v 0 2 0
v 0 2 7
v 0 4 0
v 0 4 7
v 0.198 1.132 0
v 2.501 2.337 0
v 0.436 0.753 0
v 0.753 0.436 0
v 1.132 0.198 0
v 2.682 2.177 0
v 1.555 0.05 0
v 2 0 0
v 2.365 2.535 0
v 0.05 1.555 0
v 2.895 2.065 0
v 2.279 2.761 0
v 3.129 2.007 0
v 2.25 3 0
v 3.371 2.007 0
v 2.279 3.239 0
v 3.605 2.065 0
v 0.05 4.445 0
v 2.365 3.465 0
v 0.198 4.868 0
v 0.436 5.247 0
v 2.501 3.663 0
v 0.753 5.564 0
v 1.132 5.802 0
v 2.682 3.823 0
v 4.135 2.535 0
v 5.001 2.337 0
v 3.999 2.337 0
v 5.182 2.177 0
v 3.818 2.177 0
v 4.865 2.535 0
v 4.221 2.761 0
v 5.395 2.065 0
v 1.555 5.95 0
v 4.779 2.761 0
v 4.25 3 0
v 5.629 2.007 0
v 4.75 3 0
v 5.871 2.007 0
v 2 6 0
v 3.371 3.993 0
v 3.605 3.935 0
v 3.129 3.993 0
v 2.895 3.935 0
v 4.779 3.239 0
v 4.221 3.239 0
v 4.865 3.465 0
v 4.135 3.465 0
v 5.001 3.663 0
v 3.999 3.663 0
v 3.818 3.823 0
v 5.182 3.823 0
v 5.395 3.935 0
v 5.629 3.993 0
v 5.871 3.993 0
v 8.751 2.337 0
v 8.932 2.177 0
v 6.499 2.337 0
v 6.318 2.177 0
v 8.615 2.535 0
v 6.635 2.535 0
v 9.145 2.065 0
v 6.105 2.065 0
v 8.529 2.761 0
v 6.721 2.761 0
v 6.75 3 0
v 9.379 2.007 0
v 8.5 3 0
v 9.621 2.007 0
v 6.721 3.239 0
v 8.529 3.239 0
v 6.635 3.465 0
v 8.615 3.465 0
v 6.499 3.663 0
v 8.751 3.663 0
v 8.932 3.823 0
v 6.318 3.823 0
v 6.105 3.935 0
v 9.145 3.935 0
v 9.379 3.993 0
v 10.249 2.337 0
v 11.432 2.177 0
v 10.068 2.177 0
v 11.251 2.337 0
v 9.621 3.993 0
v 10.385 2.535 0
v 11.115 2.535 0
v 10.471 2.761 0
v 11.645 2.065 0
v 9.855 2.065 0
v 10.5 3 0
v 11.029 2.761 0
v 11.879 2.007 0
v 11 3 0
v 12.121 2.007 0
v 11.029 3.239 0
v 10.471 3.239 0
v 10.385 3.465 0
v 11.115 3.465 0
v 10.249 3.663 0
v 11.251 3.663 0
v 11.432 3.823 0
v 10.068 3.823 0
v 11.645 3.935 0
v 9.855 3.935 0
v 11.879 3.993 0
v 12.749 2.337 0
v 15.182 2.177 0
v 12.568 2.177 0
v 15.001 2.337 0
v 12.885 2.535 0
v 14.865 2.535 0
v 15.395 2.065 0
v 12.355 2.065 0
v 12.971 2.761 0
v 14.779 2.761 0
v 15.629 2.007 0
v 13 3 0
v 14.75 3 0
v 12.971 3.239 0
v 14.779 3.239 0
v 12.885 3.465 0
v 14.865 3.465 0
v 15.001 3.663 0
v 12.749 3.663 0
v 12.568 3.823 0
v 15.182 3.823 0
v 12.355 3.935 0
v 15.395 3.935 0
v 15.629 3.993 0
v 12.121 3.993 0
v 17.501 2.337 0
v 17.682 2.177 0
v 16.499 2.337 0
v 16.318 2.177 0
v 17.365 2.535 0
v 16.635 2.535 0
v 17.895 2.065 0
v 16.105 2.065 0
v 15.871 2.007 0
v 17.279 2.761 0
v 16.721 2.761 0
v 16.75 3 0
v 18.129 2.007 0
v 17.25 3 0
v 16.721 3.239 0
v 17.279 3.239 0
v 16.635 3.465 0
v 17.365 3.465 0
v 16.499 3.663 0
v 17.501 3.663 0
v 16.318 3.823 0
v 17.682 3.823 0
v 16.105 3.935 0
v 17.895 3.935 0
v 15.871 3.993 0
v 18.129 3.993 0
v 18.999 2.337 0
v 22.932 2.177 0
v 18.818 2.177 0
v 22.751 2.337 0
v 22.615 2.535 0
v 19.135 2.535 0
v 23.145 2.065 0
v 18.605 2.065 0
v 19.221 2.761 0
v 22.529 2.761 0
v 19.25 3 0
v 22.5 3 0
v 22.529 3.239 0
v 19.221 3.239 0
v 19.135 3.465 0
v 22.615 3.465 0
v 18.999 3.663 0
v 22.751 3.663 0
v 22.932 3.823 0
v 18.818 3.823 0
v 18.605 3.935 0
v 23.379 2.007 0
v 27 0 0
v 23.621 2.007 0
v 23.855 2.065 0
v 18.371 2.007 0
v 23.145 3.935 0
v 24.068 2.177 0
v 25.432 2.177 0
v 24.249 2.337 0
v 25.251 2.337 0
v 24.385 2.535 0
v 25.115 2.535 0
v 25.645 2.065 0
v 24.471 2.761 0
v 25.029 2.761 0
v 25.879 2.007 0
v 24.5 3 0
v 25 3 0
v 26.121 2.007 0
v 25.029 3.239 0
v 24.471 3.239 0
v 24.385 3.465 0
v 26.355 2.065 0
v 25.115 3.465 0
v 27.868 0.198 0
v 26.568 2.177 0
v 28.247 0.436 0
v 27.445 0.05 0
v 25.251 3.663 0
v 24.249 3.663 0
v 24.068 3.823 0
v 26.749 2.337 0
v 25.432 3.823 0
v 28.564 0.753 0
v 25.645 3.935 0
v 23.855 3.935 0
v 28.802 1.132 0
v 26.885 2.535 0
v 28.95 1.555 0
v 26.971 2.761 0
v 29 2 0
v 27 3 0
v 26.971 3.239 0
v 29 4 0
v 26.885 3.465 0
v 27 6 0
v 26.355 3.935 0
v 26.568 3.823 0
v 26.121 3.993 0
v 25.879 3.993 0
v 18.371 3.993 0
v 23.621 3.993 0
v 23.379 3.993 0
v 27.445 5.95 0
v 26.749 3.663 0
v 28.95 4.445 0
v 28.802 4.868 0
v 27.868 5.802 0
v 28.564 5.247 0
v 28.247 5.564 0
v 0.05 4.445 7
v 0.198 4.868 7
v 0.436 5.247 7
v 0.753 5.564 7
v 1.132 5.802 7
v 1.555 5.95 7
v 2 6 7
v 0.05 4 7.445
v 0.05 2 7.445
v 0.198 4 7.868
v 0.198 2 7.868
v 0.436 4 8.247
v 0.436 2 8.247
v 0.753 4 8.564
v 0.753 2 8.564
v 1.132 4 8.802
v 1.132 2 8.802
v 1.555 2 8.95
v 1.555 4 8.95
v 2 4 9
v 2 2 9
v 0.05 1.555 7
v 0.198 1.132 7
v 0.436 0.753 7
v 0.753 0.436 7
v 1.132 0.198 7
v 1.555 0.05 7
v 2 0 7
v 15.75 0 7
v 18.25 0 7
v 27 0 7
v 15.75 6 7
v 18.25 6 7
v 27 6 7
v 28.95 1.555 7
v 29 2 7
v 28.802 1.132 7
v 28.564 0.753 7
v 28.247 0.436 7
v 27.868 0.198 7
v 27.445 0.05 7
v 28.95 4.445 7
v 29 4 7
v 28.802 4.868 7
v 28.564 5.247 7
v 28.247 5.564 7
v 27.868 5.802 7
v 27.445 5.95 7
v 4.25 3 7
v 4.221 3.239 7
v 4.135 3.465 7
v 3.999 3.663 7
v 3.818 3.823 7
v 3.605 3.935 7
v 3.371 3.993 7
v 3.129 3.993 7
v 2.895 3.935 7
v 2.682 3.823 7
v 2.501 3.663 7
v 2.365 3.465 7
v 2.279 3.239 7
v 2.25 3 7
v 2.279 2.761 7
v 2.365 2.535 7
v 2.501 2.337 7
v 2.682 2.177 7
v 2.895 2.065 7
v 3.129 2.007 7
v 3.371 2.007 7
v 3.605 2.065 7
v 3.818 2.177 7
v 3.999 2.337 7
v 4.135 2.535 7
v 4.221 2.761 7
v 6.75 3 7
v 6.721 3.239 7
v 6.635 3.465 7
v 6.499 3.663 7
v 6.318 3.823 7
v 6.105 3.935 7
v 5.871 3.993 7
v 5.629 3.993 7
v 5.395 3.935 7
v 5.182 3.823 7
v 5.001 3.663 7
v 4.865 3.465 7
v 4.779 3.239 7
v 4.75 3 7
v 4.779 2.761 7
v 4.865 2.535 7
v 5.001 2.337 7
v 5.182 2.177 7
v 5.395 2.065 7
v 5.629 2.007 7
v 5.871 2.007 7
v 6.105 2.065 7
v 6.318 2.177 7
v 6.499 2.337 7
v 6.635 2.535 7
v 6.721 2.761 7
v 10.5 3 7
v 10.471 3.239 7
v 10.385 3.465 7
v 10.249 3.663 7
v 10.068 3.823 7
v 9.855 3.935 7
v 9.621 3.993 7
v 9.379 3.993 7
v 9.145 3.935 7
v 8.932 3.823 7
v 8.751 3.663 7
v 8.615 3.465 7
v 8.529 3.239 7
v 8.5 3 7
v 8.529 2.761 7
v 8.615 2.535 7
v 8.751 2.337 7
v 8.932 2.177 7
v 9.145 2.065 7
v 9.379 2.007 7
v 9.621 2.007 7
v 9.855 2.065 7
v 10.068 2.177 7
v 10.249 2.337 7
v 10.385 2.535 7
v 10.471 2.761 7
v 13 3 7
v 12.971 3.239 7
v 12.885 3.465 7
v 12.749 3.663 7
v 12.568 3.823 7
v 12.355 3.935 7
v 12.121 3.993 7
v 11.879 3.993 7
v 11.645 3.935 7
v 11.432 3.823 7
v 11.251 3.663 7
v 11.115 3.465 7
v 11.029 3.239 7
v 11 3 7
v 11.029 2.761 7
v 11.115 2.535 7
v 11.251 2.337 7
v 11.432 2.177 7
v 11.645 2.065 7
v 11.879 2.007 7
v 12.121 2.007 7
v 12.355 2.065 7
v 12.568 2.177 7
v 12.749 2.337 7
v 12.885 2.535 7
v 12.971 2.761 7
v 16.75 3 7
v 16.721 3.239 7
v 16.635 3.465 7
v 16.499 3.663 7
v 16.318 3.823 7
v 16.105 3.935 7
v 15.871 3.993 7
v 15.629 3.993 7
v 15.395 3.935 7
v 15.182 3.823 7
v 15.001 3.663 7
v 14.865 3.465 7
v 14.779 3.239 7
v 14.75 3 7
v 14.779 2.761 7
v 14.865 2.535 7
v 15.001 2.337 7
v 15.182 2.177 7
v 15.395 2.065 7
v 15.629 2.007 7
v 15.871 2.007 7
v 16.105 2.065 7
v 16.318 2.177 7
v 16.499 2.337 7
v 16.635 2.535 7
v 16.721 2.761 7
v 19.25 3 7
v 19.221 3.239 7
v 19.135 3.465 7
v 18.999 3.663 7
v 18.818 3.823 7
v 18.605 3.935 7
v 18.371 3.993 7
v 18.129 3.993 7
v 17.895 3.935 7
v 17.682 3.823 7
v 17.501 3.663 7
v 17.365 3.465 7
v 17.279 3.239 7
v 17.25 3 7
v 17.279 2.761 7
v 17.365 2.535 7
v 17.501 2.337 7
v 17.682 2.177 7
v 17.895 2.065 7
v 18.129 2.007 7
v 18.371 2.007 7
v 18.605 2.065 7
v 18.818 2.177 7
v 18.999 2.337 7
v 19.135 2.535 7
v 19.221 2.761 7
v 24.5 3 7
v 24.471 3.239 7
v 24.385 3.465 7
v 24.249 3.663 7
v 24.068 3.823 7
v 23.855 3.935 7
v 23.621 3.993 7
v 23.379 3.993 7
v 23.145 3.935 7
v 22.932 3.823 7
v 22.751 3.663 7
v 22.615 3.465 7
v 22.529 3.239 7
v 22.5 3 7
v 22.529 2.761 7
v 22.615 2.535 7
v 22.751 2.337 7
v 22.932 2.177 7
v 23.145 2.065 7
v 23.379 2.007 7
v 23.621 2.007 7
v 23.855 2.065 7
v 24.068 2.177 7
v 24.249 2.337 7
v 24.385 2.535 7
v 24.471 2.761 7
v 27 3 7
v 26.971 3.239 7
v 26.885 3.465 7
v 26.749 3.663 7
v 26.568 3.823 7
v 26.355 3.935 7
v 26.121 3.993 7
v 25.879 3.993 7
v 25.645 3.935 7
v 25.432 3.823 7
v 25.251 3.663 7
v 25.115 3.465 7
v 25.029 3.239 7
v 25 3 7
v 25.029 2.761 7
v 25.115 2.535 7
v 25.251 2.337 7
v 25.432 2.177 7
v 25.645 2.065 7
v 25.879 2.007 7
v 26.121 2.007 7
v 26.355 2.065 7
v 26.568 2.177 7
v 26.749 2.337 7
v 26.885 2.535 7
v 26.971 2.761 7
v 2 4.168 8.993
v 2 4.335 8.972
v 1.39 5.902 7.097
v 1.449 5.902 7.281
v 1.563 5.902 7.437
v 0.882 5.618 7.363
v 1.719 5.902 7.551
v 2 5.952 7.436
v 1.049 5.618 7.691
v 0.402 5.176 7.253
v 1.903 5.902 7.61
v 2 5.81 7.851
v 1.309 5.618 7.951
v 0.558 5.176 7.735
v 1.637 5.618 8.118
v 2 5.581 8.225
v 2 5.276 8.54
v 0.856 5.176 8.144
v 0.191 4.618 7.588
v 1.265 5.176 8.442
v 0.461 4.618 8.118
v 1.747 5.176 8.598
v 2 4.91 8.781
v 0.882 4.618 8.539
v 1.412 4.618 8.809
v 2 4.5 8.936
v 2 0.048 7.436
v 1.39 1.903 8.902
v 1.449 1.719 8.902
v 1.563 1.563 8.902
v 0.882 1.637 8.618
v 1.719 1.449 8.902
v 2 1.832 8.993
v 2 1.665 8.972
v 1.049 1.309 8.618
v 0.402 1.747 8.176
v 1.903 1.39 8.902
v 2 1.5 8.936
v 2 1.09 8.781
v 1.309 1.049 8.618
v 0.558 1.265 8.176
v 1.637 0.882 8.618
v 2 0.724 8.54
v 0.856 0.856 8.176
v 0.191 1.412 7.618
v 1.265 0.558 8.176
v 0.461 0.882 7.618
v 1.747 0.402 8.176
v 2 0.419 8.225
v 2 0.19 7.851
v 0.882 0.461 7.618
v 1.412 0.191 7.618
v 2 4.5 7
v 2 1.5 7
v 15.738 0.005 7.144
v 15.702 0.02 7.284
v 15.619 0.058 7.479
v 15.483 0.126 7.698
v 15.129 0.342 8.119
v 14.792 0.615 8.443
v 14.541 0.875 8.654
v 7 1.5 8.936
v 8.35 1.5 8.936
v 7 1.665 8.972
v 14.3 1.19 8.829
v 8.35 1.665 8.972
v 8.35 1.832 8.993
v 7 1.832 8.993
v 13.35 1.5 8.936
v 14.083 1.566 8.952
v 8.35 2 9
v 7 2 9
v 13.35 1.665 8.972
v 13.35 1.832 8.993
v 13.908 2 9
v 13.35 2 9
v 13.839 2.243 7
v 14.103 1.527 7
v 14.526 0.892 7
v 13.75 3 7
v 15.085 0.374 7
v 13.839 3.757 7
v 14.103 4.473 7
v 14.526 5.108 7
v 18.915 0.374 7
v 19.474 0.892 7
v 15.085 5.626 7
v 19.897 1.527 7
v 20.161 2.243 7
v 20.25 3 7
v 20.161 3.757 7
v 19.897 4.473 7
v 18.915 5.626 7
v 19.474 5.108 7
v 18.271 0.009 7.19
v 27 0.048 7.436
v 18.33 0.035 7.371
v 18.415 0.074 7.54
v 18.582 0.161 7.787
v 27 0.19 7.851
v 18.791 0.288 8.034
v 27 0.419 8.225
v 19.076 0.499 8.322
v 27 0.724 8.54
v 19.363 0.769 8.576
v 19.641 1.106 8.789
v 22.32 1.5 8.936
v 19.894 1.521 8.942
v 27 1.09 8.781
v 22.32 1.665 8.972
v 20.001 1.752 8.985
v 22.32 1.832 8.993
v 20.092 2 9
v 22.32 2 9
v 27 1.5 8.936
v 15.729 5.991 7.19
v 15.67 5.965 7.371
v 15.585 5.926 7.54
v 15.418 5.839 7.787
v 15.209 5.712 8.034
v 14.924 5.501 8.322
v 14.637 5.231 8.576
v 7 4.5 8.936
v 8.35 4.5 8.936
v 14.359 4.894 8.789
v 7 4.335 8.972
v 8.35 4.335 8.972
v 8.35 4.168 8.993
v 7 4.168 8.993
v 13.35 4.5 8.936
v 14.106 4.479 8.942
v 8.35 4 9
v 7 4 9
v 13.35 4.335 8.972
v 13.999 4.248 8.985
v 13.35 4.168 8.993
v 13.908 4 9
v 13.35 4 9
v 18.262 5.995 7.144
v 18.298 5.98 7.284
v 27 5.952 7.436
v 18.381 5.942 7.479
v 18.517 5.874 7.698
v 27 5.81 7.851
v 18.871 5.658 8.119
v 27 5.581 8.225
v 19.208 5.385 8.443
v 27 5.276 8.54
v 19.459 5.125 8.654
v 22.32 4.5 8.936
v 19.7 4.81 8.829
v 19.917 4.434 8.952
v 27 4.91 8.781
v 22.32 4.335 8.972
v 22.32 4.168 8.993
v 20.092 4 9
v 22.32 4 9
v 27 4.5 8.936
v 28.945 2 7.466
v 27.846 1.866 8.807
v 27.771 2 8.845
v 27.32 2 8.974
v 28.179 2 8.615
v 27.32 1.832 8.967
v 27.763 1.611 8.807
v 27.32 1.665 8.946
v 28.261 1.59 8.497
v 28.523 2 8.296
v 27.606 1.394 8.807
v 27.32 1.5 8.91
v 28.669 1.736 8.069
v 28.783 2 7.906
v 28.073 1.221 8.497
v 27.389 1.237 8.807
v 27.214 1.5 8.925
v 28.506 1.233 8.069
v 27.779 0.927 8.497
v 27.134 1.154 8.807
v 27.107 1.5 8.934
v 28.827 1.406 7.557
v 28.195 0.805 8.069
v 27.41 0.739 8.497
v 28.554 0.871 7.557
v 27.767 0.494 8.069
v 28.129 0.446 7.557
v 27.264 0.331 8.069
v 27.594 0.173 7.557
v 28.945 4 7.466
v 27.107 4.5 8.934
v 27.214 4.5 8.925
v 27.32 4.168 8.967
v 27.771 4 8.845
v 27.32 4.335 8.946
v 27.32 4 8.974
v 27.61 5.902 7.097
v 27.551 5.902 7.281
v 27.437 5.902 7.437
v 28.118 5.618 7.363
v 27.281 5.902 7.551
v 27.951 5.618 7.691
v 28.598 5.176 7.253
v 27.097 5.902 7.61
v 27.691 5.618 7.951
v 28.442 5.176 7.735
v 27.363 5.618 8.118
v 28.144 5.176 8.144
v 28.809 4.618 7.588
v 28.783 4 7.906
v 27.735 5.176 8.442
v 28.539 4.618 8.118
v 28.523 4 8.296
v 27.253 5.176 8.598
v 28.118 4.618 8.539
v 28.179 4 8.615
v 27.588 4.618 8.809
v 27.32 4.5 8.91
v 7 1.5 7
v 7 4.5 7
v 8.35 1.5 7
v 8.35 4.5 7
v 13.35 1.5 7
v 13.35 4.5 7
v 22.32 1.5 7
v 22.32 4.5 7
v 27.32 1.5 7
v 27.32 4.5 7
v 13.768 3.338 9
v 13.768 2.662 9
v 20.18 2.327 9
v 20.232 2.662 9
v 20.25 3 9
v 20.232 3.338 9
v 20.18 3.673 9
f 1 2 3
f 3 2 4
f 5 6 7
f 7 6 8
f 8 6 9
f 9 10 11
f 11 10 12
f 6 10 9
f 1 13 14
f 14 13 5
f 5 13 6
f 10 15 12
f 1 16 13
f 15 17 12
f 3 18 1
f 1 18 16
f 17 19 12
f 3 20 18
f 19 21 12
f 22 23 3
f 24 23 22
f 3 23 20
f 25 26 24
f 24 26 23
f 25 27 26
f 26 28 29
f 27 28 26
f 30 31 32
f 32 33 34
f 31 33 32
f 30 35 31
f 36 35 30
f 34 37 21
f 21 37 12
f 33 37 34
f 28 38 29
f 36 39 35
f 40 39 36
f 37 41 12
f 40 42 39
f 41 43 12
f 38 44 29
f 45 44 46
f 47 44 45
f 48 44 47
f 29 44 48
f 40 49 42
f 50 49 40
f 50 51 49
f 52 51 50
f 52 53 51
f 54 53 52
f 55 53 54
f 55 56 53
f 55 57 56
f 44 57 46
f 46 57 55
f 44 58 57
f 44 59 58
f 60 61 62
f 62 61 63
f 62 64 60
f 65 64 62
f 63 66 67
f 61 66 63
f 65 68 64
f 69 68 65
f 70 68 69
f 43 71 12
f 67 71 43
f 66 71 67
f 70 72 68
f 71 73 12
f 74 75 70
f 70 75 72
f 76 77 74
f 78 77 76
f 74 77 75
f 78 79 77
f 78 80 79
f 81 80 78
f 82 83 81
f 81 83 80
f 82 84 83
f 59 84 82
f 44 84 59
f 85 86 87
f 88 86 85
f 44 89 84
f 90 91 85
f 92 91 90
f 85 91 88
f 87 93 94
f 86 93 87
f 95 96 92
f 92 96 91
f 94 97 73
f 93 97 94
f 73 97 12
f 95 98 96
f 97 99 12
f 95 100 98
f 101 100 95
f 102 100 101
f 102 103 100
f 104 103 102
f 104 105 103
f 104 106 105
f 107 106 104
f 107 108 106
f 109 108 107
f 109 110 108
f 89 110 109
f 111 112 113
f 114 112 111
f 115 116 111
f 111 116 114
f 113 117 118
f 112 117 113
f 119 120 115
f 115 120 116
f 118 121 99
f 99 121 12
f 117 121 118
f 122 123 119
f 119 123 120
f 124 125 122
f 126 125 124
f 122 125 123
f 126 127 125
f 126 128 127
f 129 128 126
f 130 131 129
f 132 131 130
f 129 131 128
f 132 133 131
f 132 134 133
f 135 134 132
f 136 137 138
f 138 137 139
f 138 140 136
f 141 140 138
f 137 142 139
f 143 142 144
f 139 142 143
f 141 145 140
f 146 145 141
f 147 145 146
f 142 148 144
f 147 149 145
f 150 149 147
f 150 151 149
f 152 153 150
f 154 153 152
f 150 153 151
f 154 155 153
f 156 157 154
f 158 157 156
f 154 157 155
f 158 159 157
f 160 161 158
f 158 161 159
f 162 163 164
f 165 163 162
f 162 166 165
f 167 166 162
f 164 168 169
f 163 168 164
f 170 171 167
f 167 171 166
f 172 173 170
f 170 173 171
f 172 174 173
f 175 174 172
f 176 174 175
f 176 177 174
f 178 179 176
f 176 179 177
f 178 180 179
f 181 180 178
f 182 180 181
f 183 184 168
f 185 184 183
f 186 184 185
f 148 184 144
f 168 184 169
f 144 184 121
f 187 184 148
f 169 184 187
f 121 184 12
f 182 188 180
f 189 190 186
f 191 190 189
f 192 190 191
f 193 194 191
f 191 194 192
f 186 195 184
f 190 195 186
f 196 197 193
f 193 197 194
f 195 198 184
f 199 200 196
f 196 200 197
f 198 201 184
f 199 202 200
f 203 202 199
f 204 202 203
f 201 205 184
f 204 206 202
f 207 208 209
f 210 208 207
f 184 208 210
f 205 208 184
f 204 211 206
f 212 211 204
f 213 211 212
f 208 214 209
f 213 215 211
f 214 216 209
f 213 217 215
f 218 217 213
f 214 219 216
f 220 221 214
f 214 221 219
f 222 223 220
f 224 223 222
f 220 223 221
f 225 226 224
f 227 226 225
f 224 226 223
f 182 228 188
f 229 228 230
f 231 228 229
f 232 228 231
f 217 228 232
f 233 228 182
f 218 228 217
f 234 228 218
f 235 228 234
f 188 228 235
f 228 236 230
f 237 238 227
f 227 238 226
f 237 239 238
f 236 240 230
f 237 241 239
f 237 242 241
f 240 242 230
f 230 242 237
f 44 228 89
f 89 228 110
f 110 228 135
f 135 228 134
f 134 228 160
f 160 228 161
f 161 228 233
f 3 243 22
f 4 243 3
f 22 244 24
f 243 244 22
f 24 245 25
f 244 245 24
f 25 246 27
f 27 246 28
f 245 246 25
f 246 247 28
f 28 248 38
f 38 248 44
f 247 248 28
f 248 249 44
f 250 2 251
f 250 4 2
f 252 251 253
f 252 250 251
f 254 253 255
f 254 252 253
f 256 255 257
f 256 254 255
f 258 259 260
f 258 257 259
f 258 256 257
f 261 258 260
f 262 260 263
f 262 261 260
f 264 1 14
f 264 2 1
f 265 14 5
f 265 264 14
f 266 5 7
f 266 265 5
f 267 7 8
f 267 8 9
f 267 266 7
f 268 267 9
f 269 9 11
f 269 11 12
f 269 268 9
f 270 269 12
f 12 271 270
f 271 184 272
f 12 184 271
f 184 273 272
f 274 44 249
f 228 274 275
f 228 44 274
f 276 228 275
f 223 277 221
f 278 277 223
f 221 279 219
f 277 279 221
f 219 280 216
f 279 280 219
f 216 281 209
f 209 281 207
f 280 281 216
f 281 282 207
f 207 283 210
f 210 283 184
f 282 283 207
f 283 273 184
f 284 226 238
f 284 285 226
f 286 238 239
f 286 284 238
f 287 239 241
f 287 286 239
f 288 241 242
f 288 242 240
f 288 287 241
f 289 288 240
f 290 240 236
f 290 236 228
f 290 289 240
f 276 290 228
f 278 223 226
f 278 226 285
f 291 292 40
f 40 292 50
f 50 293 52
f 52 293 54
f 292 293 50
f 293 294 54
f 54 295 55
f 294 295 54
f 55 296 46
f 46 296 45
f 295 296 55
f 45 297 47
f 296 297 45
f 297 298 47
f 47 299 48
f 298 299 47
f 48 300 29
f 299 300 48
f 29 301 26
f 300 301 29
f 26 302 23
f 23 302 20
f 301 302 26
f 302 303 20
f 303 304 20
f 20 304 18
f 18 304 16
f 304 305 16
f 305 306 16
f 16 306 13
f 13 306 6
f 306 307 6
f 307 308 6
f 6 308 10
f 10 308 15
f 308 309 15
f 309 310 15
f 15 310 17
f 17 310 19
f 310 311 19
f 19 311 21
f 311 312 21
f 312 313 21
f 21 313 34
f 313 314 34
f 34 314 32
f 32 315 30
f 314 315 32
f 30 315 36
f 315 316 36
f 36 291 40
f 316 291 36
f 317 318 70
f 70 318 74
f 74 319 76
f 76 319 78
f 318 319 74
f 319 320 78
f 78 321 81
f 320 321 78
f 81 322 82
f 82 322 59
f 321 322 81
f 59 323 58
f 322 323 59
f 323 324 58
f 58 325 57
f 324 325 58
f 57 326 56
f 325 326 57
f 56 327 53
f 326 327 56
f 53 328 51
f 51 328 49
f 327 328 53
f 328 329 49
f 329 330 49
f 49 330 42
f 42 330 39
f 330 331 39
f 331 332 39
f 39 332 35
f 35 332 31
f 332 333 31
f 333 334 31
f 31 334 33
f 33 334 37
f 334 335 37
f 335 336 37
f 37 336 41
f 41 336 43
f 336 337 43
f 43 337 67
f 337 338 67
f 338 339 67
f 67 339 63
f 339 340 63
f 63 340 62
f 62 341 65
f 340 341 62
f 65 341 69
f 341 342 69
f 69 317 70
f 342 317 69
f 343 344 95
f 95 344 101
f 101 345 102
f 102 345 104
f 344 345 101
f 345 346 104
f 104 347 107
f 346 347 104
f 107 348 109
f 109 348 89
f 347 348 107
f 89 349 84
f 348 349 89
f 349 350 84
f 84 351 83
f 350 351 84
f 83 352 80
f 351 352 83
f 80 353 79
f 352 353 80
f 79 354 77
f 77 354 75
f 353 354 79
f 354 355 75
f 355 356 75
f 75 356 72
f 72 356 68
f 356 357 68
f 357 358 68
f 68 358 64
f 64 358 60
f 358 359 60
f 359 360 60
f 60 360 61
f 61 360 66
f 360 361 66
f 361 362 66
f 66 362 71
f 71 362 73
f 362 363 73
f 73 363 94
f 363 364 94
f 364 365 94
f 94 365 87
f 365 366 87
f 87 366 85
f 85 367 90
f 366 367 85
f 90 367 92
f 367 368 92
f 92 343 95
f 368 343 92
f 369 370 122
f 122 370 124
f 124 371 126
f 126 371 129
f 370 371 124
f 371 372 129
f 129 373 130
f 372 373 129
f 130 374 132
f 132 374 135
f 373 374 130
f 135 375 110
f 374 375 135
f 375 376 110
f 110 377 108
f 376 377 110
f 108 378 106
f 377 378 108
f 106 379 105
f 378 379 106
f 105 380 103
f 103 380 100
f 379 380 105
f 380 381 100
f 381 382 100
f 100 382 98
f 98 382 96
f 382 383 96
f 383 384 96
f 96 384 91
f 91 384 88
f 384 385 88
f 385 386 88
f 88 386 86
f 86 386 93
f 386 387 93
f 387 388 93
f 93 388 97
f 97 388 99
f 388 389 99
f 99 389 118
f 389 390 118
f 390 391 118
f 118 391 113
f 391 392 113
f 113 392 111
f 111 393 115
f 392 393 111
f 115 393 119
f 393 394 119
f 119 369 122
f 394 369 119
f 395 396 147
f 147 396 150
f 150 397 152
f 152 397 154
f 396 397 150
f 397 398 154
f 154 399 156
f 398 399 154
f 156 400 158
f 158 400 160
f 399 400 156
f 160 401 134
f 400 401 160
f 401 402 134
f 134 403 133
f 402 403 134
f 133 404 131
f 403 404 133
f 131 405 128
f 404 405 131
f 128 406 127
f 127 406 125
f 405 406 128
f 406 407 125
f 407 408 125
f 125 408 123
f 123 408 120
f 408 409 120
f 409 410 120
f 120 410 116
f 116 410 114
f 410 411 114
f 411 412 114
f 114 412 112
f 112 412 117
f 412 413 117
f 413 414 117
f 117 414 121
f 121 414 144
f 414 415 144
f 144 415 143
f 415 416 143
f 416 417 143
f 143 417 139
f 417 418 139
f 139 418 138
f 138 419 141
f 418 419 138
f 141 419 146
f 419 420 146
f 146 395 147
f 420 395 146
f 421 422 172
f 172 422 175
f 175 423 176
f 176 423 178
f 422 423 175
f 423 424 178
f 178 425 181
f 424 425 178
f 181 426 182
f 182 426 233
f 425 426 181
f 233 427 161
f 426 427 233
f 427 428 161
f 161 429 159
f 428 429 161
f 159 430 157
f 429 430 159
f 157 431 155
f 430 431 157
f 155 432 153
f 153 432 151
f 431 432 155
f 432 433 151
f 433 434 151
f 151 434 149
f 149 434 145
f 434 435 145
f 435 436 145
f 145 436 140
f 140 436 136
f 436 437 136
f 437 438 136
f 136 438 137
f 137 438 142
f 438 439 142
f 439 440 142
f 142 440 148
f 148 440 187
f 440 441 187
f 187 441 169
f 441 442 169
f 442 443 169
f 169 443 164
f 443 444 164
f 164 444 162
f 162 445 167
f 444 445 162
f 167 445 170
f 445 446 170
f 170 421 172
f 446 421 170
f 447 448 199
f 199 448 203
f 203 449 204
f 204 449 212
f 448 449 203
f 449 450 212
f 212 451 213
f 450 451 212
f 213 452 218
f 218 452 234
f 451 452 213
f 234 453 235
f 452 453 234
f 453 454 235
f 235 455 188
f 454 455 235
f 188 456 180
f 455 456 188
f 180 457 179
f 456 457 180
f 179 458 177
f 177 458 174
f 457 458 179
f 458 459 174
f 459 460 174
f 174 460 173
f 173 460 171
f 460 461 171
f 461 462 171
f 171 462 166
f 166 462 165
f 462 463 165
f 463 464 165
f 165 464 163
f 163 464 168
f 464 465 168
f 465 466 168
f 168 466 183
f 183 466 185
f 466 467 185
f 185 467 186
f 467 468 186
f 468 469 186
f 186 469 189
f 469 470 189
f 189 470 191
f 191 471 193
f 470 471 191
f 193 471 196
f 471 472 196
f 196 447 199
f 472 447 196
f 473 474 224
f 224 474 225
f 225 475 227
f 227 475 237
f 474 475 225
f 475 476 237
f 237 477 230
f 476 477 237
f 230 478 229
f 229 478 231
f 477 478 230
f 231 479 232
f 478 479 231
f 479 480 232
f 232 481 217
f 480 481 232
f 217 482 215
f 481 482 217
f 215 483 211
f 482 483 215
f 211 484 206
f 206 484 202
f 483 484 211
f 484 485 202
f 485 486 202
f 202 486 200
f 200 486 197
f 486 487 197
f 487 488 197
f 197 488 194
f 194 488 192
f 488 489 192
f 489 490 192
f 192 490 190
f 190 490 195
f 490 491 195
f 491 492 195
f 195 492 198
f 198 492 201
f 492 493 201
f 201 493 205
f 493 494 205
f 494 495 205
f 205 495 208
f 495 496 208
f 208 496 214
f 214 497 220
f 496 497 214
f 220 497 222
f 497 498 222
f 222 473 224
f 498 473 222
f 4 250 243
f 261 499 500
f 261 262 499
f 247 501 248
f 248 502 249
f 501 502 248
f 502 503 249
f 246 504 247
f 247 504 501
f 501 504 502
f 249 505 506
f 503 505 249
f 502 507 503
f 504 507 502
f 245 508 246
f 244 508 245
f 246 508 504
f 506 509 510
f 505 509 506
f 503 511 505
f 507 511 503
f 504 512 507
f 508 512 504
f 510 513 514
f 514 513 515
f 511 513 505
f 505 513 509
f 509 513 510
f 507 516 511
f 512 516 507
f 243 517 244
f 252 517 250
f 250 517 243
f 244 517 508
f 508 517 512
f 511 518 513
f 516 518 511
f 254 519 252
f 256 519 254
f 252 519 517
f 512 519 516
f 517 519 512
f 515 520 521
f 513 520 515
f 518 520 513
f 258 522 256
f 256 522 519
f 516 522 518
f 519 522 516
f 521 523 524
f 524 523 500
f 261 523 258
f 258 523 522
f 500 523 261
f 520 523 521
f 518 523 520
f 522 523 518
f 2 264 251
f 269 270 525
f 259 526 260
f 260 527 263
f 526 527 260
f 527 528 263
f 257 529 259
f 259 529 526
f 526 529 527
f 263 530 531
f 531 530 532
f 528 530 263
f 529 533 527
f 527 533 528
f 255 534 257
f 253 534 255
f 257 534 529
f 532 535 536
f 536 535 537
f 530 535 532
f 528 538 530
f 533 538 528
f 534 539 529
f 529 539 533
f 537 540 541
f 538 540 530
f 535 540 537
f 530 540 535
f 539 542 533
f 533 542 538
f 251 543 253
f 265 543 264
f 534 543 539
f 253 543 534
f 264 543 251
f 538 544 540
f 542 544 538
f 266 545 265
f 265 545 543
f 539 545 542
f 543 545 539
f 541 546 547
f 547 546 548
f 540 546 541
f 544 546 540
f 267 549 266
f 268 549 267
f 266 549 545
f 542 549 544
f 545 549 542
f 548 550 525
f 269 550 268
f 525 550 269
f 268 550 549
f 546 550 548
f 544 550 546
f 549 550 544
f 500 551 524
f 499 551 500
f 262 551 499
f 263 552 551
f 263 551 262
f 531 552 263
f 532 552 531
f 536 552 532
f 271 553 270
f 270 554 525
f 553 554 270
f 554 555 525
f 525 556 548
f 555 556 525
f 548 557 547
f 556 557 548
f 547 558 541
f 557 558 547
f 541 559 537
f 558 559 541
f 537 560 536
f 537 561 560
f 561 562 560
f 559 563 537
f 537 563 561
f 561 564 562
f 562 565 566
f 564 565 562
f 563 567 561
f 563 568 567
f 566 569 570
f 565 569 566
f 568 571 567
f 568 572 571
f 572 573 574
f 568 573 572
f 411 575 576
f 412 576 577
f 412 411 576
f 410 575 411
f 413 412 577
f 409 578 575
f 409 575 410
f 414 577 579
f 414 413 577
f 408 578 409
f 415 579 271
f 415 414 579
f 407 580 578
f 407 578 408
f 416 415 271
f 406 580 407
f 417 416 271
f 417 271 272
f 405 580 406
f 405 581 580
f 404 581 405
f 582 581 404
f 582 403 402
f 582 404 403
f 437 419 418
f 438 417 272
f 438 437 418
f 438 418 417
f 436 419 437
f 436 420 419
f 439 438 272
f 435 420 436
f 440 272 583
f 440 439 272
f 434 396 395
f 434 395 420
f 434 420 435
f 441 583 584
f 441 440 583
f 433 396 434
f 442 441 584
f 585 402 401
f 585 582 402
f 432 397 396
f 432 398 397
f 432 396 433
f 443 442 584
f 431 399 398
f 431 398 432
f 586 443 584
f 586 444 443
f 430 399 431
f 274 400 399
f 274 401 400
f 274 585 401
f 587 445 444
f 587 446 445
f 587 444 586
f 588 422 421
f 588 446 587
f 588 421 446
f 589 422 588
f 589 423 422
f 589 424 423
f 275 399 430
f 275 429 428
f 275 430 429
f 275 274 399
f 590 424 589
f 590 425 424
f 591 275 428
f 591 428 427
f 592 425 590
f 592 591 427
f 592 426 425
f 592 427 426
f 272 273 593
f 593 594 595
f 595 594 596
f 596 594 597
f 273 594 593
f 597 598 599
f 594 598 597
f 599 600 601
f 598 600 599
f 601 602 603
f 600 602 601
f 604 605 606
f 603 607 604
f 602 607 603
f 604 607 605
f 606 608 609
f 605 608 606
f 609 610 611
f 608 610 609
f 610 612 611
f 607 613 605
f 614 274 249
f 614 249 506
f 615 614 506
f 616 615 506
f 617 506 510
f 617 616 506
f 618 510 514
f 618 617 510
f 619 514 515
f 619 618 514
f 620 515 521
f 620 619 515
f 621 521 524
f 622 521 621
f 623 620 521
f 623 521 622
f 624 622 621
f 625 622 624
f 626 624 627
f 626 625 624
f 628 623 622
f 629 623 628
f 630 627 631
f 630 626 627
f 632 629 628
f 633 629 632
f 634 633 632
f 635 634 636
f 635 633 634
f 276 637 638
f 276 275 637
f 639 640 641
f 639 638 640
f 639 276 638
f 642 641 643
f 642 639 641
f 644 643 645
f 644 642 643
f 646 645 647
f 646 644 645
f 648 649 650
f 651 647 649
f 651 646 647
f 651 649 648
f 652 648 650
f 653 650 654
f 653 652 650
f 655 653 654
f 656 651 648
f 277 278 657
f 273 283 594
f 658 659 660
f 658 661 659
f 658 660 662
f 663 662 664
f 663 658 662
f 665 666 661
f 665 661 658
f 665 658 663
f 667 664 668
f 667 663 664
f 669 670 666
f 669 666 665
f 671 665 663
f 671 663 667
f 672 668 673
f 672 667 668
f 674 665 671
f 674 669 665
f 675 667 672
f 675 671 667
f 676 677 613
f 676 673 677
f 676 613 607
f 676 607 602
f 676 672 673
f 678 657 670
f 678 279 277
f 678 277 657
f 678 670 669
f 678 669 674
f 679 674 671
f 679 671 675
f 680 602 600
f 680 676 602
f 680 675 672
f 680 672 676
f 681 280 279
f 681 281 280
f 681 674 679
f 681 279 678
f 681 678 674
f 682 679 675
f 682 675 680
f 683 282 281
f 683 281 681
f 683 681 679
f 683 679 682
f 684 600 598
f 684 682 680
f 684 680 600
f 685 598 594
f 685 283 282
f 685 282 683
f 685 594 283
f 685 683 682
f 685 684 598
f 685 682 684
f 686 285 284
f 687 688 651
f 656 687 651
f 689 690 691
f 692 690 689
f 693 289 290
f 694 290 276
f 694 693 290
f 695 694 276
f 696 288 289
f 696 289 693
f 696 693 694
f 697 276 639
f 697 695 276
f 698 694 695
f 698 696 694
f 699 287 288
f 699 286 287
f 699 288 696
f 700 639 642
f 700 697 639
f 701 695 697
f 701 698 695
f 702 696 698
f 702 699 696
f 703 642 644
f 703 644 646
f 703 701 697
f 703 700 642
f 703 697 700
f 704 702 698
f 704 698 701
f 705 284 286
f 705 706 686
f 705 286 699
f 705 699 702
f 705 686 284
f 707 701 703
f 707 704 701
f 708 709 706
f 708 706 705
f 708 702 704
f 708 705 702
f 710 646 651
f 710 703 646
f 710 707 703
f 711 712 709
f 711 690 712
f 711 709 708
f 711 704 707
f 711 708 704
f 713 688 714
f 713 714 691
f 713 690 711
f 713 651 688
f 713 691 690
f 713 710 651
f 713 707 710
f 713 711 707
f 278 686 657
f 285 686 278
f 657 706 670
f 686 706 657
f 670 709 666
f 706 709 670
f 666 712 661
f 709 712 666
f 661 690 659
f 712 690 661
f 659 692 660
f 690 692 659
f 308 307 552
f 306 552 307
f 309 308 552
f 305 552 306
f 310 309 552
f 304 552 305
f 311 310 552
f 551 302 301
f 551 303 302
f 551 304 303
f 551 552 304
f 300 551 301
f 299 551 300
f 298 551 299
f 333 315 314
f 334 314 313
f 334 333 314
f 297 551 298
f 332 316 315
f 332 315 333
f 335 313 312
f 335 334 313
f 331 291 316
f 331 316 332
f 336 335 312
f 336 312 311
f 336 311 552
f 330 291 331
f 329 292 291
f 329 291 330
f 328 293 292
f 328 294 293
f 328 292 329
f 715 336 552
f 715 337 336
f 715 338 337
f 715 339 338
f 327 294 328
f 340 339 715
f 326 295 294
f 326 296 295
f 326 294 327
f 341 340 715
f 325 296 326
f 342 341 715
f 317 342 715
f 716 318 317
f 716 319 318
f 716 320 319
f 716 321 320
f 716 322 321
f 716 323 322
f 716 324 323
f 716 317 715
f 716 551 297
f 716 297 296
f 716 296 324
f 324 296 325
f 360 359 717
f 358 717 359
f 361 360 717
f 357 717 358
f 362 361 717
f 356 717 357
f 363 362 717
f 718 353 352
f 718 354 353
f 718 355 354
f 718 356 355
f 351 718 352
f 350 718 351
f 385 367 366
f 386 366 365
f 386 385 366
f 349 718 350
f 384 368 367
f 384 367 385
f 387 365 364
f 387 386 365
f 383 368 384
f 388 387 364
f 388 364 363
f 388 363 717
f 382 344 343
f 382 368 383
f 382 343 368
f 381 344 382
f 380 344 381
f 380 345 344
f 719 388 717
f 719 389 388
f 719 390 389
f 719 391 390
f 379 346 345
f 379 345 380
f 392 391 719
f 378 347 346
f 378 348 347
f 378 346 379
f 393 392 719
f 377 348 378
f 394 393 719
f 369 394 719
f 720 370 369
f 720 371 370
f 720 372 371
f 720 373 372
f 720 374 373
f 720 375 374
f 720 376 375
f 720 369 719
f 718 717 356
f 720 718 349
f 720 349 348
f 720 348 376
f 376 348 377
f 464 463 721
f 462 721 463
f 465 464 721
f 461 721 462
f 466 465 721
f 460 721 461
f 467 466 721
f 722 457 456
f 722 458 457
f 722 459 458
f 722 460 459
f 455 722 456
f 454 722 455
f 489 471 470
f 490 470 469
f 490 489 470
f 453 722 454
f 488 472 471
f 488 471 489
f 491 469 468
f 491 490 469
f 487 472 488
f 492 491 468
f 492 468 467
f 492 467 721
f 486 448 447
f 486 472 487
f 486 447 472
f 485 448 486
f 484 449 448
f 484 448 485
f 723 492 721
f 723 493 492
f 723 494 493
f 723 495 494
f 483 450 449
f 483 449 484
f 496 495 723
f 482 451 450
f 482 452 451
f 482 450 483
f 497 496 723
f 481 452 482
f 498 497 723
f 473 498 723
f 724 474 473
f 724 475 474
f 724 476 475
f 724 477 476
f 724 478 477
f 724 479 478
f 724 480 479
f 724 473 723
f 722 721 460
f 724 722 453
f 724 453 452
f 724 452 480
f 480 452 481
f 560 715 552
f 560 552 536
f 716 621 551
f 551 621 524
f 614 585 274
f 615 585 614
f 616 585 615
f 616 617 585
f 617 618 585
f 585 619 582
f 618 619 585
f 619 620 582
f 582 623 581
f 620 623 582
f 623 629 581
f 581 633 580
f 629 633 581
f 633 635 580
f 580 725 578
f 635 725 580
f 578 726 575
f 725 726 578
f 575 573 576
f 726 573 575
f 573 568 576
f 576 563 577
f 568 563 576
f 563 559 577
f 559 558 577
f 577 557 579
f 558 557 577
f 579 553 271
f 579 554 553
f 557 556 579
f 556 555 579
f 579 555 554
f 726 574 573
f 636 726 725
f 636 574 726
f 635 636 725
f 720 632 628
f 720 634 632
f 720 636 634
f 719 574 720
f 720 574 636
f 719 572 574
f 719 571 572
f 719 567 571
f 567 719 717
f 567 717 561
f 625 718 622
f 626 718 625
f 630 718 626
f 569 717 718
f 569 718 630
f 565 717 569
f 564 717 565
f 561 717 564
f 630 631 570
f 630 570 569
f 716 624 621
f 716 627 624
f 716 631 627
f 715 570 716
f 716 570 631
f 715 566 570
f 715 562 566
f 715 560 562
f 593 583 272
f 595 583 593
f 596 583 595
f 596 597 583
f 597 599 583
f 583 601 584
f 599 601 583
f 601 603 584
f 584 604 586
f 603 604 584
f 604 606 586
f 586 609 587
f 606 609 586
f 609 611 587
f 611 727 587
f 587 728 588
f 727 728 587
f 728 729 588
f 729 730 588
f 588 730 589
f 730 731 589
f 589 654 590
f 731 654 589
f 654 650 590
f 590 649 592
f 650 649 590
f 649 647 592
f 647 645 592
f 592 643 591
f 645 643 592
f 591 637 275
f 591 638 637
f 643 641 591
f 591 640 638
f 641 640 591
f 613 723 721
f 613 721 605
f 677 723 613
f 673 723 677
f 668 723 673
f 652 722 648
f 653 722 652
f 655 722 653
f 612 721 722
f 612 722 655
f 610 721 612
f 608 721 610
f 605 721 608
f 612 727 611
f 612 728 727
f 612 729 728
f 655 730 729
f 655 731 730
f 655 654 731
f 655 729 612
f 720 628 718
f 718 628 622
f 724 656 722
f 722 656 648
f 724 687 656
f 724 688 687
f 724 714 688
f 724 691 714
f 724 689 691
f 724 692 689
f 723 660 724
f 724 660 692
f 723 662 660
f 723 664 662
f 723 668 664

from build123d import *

# Parameters (mm, degrees)
BOX001_W          = 5
BOX001_H          = 3
BOX001_DEPTH      = 10
BOX002_W          = 5
BOX002_H          = 3
BOX002_DEPTH      = 10
BOX003_W          = 5
BOX003_H          = 3
BOX003_DEPTH      = 10
CYLINDER_R        = 3.25
CYLINDER_DEPTH    = 10
CYLINDER002_R     = 1
CYLINDER002_DEPTH = 20
CYLINDER001_R     = 1
CYLINDER001_DEPTH = 20
CYLINDER004_R     = 1
CYLINDER004_DEPTH = 20
CYLINDER003_R     = 1
CYLINDER003_DEPTH = 20
CYLINDER006_R     = 1
CYLINDER006_DEPTH = 20
CYLINDER005_R     = 1
CYLINDER005_DEPTH = 20
CYLINDER008_R     = 1
CYLINDER008_DEPTH = 20
CYLINDER007_R     = 1
CYLINDER007_DEPTH = 20
BOX_W             = 29
BOX_H             = 6
BOX_DEPTH         = 9
FILLET_R          = 2


with BuildPart() as cube001:
    # Box001 → Box001 (new body)
    with BuildSketch(Plane(origin=(2, 1.5, 7), x_dir=(1, 0, 0), z_dir=(0, 0, 1))):
        with Locations((2.5, 1.5)):
            Rectangle(BOX001_W, BOX001_H)
    extrude(amount=BOX001_DEPTH)


with BuildPart() as cube002:
    # Box002 → Box002 (new body)
    with BuildSketch(Plane(origin=(8.35, 1.5, 7), x_dir=(1, 0, 0), z_dir=(0, 0, 1))):
        with Locations((2.5, 1.5)):
            Rectangle(BOX002_W, BOX002_H)
    extrude(amount=BOX002_DEPTH)


with BuildPart() as cube003:
    # Box003 → Box003 (new body)
    with BuildSketch(Plane(origin=(22.32, 1.5, 7), x_dir=(1, 0, 0), z_dir=(0, 0, 1))):
        with Locations((2.5, 1.5)):
            Rectangle(BOX003_W, BOX003_H)
    extrude(amount=BOX003_DEPTH)


with BuildPart() as cylinder:
    # Cylinder → Cylinder (new body)
    with BuildSketch(Plane(origin=(17, 3, 7), x_dir=(1, 0, 0), z_dir=(0, 0, 1))):
        Circle(CYLINDER_R)
    extrude(amount=CYLINDER_DEPTH)


with BuildPart() as cylinder002:
    # Cylinder002 → Cylinder002 (new body)
    with BuildSketch(Plane(origin=(5.75, 3, 0), x_dir=(1, 0, 0), z_dir=(0, 0, 1))):
        Circle(CYLINDER002_R)
    extrude(amount=CYLINDER002_DEPTH)


with BuildPart() as fusion:
    # Cylinder001 → Cylinder001 (new body)
    with BuildSketch(Plane(origin=(3.25, 3, 0), x_dir=(1, 0, 0), z_dir=(0, 0, 1))):
        Circle(CYLINDER001_R)
    extrude(amount=CYLINDER001_DEPTH)

    # Fusion: union Cylinder002
    add(cylinder002.part)


with BuildPart() as cylinder004:
    # Cylinder004 → Cylinder004 (new body)
    with BuildSketch(Plane(origin=(5.75, 3, 0), x_dir=(1, 0, 0), z_dir=(0, 0, 1))):
        Circle(CYLINDER004_R)
    extrude(amount=CYLINDER004_DEPTH)


with BuildPart() as fusion001:
    # Cylinder003 → Cylinder003 (new body)
    with BuildSketch(Plane(origin=(3.25, 3, 0), x_dir=(1, 0, 0), z_dir=(0, 0, 1))):
        Circle(CYLINDER003_R)
    extrude(amount=CYLINDER003_DEPTH)

    # Fusion001: union Cylinder004
    add(cylinder004.part)


with BuildPart() as fusion001_1:
    # Fusion001 placement: moved
    add(fusion001.part.moved(Location((6.25, 0, 0))))


with BuildPart() as cylinder006:
    # Cylinder006 → Cylinder006 (new body)
    with BuildSketch(Plane(origin=(5.75, 3, 0), x_dir=(1, 0, 0), z_dir=(0, 0, 1))):
        Circle(CYLINDER006_R)
    extrude(amount=CYLINDER006_DEPTH)


with BuildPart() as fusion002:
    # Cylinder005 → Cylinder005 (new body)
    with BuildSketch(Plane(origin=(3.25, 3, 0), x_dir=(1, 0, 0), z_dir=(0, 0, 1))):
        Circle(CYLINDER005_R)
    extrude(amount=CYLINDER005_DEPTH)

    # Fusion002: union Cylinder006
    add(cylinder006.part)


with BuildPart() as fusion002_1:
    # Fusion002 placement: moved
    add(fusion002.part.moved(Location((20.25, 0, 0))))


with BuildPart() as cylinder008:
    # Cylinder008 → Cylinder008 (new body)
    with BuildSketch(Plane(origin=(5.75, 3, 0), x_dir=(1, 0, 0), z_dir=(0, 0, 1))):
        Circle(CYLINDER008_R)
    extrude(amount=CYLINDER008_DEPTH)


with BuildPart() as fusion004:
    # Cylinder007 → Cylinder007 (new body)
    with BuildSketch(Plane(origin=(3.25, 3, 0), x_dir=(1, 0, 0), z_dir=(0, 0, 1))):
        Circle(CYLINDER007_R)
    extrude(amount=CYLINDER007_DEPTH)

    # Fusion003: union Cylinder008
    add(cylinder008.part)


with BuildPart() as fusion004_1:
    # Fusion003 placement: moved
    add(fusion004.part.moved(Location((12.5, 0, 0))))

    # Fusion004: union Cube001, Cube002, Cube003, Cylinder, Fusion, Fusion001, Fusion002
    add(cube001.part)
    add(cube002.part)
    add(cube003.part)
    add(cylinder.part)
    add(fusion.part)
    add(fusion001_1.part)
    add(fusion002_1.part)


with BuildPart() as standoff:
    # Box → Box (new body)
    with BuildSketch(Plane.XY):
        with Locations((14.5, 3)):
            Rectangle(BOX_W, BOX_H)
    extrude(amount=BOX_DEPTH)

    # Fillet
    fillet_edges = [standoff.edges().sort_by_distance(p)[0] for p in [
        (0, 0, 4.5),
        (0, 3, 9),
        (0, 6, 4.5),
        (29, 0, 4.5),
        (29, 3, 9),
        (29, 6, 4.5),
        (14.5, 0, 9),
        (14.5, 6, 9),
    ]]
    fillet(fillet_edges, radius=FILLET_R)

    # Cut: cut Fusion004
    add(fusion004_1.part, mode=Mode.SUBTRACT)


solid = standoff.part
